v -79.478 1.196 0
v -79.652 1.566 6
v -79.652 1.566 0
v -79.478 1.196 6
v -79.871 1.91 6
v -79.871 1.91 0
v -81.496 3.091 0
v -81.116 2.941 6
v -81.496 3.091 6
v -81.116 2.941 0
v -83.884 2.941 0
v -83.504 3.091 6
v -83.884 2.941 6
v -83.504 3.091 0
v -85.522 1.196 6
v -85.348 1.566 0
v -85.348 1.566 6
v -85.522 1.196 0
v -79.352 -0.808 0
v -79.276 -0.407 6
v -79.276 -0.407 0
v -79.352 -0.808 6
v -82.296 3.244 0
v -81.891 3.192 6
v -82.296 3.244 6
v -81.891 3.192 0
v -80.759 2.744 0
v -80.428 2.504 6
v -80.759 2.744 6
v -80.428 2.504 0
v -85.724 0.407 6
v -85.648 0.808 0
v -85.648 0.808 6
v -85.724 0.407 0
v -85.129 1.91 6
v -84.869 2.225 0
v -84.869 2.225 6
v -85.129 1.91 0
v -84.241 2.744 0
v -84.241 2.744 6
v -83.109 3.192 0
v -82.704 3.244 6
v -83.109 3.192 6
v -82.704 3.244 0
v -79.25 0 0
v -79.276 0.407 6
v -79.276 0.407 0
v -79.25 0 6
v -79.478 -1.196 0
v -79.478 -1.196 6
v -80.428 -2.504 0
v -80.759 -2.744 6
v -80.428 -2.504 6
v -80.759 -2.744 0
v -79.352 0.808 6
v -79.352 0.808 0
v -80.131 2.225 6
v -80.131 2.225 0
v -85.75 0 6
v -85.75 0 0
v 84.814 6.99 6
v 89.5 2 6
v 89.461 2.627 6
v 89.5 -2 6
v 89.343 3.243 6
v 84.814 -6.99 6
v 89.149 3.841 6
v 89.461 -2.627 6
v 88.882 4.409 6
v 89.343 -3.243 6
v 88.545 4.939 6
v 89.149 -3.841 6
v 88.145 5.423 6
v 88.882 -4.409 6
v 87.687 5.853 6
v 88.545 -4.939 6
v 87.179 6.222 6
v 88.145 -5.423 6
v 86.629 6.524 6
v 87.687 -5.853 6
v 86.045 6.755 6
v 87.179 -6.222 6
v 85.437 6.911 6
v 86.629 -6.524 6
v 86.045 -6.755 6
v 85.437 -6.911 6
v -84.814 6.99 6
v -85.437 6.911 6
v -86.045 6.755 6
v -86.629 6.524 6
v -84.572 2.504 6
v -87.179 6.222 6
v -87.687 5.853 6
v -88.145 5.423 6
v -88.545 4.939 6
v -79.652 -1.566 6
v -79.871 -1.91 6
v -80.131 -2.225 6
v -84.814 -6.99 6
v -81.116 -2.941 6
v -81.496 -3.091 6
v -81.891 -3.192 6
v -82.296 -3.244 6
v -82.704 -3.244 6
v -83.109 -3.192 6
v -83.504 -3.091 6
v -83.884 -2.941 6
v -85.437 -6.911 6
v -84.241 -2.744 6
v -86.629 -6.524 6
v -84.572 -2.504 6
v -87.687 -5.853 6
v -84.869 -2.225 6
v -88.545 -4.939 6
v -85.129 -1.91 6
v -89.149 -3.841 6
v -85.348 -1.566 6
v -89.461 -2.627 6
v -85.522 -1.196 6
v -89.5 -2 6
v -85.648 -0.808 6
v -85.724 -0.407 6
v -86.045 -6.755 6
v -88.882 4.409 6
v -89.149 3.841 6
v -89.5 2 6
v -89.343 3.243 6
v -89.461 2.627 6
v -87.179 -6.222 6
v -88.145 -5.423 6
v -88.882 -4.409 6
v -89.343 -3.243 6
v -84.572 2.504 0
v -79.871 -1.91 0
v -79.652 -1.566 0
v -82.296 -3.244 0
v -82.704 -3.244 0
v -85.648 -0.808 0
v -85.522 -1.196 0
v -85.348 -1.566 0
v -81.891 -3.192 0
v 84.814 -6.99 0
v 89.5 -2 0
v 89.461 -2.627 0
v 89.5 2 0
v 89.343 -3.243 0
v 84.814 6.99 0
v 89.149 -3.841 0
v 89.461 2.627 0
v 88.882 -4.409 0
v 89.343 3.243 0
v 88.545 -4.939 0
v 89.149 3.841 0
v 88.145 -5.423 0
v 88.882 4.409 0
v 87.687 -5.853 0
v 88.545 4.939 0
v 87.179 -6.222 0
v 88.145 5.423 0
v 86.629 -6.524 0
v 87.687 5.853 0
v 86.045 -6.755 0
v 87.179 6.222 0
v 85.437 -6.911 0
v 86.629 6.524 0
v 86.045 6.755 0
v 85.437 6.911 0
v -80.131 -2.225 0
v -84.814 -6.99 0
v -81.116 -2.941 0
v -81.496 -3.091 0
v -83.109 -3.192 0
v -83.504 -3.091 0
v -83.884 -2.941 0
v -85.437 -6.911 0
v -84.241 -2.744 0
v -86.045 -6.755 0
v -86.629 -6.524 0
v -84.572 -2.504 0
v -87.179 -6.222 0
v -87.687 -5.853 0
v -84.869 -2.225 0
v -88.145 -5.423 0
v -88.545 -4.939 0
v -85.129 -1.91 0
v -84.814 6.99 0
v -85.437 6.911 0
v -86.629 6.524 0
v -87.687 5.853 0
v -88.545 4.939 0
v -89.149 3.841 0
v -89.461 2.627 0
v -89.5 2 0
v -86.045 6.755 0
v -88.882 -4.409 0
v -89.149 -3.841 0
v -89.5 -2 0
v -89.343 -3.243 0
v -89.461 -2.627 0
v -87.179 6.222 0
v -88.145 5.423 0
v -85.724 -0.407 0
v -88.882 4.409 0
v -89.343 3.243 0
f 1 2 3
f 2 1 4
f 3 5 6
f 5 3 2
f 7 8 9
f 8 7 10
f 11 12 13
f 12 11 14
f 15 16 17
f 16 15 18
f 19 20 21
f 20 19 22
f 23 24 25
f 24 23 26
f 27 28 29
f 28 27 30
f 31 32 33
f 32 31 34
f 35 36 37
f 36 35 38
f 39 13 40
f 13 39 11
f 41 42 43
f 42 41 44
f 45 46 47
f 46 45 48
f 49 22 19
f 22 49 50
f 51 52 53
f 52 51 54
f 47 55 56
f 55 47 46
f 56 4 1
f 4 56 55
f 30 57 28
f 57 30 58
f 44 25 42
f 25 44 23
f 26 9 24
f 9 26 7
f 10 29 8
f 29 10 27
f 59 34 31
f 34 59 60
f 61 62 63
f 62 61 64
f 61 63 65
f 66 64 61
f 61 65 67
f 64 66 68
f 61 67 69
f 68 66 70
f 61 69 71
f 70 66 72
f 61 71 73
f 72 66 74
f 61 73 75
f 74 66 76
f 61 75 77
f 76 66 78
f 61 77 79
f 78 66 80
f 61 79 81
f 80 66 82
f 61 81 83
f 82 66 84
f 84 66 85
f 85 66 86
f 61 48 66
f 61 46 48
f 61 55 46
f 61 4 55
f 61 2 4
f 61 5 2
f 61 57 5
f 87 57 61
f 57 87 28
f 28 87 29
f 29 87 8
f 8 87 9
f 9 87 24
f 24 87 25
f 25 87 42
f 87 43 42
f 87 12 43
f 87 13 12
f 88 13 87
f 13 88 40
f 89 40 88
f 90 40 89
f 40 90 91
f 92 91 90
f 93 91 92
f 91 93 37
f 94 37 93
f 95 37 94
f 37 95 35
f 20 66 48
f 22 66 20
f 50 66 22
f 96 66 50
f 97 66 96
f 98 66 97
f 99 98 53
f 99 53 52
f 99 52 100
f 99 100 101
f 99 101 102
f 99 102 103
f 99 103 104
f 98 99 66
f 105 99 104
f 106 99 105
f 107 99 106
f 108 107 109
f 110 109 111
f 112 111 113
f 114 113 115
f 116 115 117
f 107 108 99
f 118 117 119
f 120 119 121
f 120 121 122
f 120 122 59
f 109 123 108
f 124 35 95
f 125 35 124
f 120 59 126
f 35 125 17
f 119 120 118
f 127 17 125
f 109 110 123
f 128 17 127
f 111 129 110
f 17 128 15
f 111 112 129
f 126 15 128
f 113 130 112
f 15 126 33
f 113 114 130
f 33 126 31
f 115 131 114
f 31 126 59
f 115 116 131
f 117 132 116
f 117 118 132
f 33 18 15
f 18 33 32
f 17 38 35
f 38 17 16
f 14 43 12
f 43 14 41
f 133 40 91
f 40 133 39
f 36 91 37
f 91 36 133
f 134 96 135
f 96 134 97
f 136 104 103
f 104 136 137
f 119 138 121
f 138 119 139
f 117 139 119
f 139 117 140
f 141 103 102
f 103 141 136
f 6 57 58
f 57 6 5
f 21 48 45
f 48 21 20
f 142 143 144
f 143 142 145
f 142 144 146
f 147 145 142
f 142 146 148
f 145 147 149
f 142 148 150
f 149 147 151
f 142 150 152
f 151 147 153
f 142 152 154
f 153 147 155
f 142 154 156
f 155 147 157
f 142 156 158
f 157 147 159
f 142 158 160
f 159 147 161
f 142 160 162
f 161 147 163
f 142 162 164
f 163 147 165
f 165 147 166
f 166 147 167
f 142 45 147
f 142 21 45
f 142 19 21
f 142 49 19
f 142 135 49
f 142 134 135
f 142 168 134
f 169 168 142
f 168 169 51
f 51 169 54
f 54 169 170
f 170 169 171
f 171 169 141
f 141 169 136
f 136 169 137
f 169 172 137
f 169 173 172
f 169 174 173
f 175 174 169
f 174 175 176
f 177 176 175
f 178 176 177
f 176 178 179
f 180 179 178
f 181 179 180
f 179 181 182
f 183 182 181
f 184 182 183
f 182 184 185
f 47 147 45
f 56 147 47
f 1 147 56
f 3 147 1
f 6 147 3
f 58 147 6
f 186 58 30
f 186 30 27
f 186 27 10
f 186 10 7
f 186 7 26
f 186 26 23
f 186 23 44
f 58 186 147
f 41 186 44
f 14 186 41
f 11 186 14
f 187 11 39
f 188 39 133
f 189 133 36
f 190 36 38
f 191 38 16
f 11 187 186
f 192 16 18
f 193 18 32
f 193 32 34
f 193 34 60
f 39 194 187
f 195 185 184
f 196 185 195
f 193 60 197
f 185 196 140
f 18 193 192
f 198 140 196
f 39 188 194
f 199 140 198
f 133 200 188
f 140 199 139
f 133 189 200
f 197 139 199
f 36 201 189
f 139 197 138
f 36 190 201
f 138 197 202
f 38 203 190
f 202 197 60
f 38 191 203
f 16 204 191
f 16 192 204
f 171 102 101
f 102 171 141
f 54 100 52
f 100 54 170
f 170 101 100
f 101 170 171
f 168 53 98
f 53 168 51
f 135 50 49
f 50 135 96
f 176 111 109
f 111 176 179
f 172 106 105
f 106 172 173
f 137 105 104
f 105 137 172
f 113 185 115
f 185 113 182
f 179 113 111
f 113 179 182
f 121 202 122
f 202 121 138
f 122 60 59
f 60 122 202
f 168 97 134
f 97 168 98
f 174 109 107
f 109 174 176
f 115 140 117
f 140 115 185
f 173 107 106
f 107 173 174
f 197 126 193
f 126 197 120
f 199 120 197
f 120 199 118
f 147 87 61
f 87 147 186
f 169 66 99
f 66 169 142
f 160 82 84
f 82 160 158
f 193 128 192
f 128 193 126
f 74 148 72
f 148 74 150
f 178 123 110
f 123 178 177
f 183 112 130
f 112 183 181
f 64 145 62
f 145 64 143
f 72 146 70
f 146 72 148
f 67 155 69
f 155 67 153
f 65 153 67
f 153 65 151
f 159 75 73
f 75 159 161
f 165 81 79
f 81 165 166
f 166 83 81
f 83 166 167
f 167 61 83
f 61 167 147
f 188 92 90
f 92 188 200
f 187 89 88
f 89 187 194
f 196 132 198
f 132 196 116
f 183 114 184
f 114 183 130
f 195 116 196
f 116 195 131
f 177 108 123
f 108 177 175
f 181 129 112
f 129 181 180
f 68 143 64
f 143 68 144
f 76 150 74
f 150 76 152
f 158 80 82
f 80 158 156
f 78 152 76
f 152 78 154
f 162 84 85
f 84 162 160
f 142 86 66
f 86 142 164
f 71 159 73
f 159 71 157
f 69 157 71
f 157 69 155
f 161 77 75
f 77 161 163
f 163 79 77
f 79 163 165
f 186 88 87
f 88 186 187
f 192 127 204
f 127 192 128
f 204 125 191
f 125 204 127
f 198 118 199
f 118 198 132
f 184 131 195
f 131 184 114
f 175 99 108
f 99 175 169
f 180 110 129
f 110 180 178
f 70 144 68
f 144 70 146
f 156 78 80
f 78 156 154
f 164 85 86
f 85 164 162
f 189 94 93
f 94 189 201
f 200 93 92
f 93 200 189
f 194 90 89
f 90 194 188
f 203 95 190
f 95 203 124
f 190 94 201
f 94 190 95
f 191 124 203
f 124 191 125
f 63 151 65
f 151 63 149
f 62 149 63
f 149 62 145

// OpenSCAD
$fn = 50;


difference() {
	union() {
		hull() {
			translate(v = [-84.5000000000, 2.0000000000, 0]) {
				cylinder(h = 6, r = 5);
			}
			translate(v = [84.5000000000, 2.0000000000, 0]) {
				cylinder(h = 6, r = 5);
			}
			translate(v = [-84.5000000000, -2.0000000000, 0]) {
				cylinder(h = 6, r = 5);
			}
			translate(v = [84.5000000000, -2.0000000000, 0]) {
				cylinder(h = 6, r = 5);
			}
		}
	}
	union() {
		translate(v = [-82.5000000000, 0.0000000000, 0]) {
			cylinder(h = 6, r = 3.2500000000);
		}
		translate(v = [-82.5000000000, 0.0000000000, 0]) {
			cylinder(h = 6, r = 1.8000000000);
		}
		translate(v = [-82.5000000000, 0.0000000000, 0]) {
			cylinder(h = 6, r = 1.8000000000);
		}
		translate(v = [-82.5000000000, 0.0000000000, 0]) {
			cylinder(h = 6, r = 1.8000000000);
		}
	}
}
